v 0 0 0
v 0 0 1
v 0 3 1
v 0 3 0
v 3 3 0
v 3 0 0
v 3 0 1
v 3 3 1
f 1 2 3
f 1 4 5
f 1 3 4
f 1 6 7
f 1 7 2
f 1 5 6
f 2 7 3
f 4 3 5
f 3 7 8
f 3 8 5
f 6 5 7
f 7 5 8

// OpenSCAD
/* Warning, this is a very basic generator with a lot of approximation 
input data : [MSOP, DPA, 3x3mm, 8, , A, C04-01085A]
generated by com.zoubworld.electronics.cad.model3d.Basic
Date : Sun Feb 15 10:50:49 CET 2026
*/

//body
color("black")
translate([0,0,0])
cube([3.0,3.0,1.0], center=false);
